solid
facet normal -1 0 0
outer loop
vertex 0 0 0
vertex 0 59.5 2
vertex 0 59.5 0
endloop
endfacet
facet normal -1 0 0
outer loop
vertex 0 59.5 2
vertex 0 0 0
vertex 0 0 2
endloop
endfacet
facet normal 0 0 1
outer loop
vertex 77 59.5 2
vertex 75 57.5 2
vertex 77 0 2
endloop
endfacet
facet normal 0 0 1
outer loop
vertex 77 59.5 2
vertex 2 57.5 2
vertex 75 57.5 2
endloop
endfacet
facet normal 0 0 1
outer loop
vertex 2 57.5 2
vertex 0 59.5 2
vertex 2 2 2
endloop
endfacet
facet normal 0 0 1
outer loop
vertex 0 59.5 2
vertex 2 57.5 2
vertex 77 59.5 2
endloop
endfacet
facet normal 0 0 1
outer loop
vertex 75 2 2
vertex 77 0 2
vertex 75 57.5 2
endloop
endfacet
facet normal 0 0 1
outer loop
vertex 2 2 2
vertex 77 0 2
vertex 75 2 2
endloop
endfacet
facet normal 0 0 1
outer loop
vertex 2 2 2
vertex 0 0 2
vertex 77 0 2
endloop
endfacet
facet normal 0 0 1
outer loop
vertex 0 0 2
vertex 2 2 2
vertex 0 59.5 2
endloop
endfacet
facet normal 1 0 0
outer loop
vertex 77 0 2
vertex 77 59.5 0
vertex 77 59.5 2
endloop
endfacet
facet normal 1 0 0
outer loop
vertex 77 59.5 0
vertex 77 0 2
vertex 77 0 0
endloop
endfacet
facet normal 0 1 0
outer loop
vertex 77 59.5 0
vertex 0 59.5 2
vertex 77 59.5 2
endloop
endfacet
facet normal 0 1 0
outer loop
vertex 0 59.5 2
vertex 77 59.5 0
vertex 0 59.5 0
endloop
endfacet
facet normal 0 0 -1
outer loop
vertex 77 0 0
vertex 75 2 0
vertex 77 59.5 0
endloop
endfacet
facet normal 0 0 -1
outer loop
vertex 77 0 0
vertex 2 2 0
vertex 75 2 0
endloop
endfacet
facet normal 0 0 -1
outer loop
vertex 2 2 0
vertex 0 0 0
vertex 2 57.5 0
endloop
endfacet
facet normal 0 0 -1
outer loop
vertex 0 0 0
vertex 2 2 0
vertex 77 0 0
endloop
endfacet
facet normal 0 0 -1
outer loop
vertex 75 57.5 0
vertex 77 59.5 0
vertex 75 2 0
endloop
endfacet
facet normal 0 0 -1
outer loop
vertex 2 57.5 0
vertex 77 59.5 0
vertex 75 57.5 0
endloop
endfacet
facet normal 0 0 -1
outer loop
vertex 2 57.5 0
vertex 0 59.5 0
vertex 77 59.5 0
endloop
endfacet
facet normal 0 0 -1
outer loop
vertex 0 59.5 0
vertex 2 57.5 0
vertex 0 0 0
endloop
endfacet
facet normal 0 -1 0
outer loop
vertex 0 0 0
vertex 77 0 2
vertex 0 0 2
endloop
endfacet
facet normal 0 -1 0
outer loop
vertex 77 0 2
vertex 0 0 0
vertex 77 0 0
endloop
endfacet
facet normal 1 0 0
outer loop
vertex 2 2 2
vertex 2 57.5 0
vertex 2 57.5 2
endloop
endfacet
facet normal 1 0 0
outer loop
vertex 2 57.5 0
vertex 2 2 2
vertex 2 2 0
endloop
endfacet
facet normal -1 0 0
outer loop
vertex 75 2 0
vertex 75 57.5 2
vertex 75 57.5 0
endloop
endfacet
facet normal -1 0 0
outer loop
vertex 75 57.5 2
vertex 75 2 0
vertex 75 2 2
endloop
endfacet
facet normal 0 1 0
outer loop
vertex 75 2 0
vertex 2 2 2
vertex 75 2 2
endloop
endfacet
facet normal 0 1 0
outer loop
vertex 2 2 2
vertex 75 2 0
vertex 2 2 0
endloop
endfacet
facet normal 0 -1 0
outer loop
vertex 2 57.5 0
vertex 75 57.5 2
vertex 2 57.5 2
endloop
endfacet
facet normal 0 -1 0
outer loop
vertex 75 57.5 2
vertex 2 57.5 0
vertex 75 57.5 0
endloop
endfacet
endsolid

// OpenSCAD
// file: parts/lid-insert-ring.scad
/* Lid insert ring which doesn't obstruct the socket */
module lid_base() {
	difference() {
		cube([box_s[0], box_s[1], base_s[2]]);
		translate([lid_o[0], lid_o[1], 0])
			cube([lid_s[0], lid_s[1], wall_s[2]]);
		translate([base_s[0], base_s[1], 0])
			cube([box_s[0] - 2 * base_s[0], box_s[1] - 2 * base_s[1], base_s[2]]);
	}
}
// file: config.scad
/* Box inner size and wall thickness */
box_s = [77, 59.5, 11];
wall_s = [1.5, 1.5, 2];

/* Lid base thickness and depth */
base_s = [2, 2, 2];

/* Socket position and size */
lid_s = [17, 10];
lid_o = [5, box_s[1] - lid_s[1] - 5];

/* Character size (includes inter-char spacing) */
char_s = [6, 7];

/* Hackology label next to socket */
text_str = "hackology";
text_scale = (box_s[0] - 2 * lid_o[0] - lid_s[0] - 5) / (len(text_str) * char_s[0] - 1);
text_s = [len(text_str) * char_s[0] - 1, char_s[1]];
text_o = [lid_o[0] + lid_s[0] + 5, lid_o[1] + lid_s[1] / 2];

/* AURA label in remaining space */
aura_str = "AURA";
aura_scale = (box_s[0] - 2 * lid_o[0]) / (len(aura_str) * char_s[0] - 1);
aura_s = [len(aura_str) * char_s[0] - 1, char_s[1]] * aura_scale;
aura_o = [lid_o[0], lid_o[1] / 2, 0];

/* Struts on lid (replaced with separate base ring) */
//strut_round = 1;
//strut_s = [3, 3, 3] - strut_round * [1, 1, 1];
// main file
include <config.scad>;

include <parts/lid-insert-ring.scad>;

/* Assemble and render! */
lid_base();
